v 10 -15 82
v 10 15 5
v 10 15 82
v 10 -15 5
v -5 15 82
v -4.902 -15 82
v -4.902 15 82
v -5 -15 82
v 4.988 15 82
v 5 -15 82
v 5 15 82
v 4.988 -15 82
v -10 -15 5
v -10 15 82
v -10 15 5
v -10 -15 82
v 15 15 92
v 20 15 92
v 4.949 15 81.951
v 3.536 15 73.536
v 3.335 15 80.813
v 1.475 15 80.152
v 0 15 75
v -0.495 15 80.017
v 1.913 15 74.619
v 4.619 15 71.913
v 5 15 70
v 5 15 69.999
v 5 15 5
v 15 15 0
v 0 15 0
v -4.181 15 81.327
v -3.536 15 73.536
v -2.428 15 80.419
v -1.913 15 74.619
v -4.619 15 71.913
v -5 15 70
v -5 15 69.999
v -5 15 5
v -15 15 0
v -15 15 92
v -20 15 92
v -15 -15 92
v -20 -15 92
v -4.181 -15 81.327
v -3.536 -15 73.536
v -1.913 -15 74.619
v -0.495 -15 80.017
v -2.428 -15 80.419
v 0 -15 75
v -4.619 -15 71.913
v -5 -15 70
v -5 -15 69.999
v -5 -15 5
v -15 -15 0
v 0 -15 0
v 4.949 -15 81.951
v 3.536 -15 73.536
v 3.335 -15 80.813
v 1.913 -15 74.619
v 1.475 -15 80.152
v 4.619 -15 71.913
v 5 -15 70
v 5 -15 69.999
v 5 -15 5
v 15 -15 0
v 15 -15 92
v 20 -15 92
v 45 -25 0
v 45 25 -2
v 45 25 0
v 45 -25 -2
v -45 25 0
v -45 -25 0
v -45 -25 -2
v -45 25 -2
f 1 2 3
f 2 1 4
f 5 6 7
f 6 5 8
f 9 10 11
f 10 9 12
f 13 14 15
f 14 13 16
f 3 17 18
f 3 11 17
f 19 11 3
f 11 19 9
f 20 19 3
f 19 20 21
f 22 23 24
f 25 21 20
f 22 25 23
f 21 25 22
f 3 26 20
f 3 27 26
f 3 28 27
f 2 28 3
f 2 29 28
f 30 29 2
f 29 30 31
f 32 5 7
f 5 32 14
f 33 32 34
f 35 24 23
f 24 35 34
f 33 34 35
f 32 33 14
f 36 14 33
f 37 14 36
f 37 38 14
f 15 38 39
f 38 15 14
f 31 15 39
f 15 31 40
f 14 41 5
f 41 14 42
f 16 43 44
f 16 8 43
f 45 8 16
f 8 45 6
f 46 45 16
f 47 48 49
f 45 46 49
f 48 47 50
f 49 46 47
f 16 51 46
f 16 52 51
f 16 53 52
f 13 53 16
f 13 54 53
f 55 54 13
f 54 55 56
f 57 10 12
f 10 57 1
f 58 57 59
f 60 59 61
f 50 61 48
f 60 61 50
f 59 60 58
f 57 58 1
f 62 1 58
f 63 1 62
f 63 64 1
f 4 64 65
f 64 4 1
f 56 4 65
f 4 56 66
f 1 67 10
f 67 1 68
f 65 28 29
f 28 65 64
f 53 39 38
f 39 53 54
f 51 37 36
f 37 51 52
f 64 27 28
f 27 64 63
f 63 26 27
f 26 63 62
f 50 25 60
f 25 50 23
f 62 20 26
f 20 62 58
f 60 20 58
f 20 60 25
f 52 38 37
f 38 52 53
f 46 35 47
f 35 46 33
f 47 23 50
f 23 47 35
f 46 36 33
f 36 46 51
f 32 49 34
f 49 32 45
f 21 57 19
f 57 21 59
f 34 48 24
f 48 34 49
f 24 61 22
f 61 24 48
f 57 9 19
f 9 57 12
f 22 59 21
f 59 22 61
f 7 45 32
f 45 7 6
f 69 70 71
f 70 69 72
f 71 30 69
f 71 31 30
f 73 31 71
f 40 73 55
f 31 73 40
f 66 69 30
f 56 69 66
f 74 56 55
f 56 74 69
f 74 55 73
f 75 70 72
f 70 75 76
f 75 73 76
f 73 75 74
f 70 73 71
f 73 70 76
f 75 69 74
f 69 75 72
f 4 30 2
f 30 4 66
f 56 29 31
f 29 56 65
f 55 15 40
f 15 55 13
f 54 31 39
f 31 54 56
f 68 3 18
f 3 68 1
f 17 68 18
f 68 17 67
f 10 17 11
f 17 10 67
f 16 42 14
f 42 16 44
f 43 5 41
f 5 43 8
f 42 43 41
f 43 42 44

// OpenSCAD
base_z = 2;
base_x = 90;
base_y = 50;

pillar_x = 20;
pillar_y = 30;
pillar_z = 80;

pillar_dish = 2;
pillar_wall = 5;
pillar_support = 5;

arm_z = 10;
arm_wall = 5;

eps = 0.001;

module centered_cube(x, y, z, z_height) {
    translate([0, 0, z_height + z / 2]) cube([x, y, z], center = true);
}


// Base
centered_cube(base_x, base_y, base_z, -base_z);
translate([0, 0, -base_z/2]) cube([base_x, base_y, base_z], center = true);

// Pillar
difference() {

    // Outer perimeter
    centered_cube(pillar_x, pillar_y, pillar_z + pillar_dish + eps, -eps);

    // Inner cutout
    cylinder_center_z = pillar_z - pillar_x / 2;
    centered_cube(pillar_x - 2 * pillar_wall, pillar_y + 2 * eps,
            cylinder_center_z, -eps);
    translate([0, 0, cylinder_center_z]) {
        rotate([90, 0, 0]) {
            cylinder(h = pillar_y + 2 * eps,
                    r = pillar_x / 2 - pillar_wall, center = true);
        }
    }

    // Dish
    inner_width = (pillar_x - 2 * arm_wall) / 2;
    dish_radius = (pillar_dish * pillar_dish + inner_width * inner_width) / (2 * pillar_dish);
    translate([0, 0, pillar_z + dish_radius]) rotate([90, 0, 0]) {
        cylinder(h = pillar_y + 2 * eps,
                r = dish_radius,
                center = true);
    }
}

// Pillar supports
module pillar_support(left = false) {
    translate([0, left ? (-pillar_y / 2) : (pillar_y / 2), 0]) {
        rotate([90, 0, left ? 180 : 0]) {
            linear_extrude(pillar_y) {
                polygon([ [-eps, -eps],
                        [pillar_support + eps, -eps],
                        [-eps, pillar_support + eps]]);
            }
        }
    }
}
translate([pillar_x / 2, 0, 0]) pillar_support();
translate([pillar_x / 2 - pillar_wall, 0, 0]) pillar_support(left = true);
translate([-pillar_x / 2, 0, 0]) pillar_support(left = true);
translate([-pillar_x / 2 + pillar_wall, 0, 0]) pillar_support();

// Arms
translate([(pillar_x - arm_wall) / 2, 0, pillar_z + pillar_dish]) {
    multmatrix([[1,0,1,0],[0,1,0,0],[0,0,1,0]]) {
        centered_cube(arm_wall, pillar_y, arm_z + eps, -eps);
    }
}
translate([-(pillar_x - arm_wall) / 2, 0, pillar_z + pillar_dish]) {
    multmatrix([[1,0,-1,0],[0,1,0,0],[0,0,1,0]]) {
        centered_cube(arm_wall, pillar_y, arm_z + eps, -eps);
    }
}
